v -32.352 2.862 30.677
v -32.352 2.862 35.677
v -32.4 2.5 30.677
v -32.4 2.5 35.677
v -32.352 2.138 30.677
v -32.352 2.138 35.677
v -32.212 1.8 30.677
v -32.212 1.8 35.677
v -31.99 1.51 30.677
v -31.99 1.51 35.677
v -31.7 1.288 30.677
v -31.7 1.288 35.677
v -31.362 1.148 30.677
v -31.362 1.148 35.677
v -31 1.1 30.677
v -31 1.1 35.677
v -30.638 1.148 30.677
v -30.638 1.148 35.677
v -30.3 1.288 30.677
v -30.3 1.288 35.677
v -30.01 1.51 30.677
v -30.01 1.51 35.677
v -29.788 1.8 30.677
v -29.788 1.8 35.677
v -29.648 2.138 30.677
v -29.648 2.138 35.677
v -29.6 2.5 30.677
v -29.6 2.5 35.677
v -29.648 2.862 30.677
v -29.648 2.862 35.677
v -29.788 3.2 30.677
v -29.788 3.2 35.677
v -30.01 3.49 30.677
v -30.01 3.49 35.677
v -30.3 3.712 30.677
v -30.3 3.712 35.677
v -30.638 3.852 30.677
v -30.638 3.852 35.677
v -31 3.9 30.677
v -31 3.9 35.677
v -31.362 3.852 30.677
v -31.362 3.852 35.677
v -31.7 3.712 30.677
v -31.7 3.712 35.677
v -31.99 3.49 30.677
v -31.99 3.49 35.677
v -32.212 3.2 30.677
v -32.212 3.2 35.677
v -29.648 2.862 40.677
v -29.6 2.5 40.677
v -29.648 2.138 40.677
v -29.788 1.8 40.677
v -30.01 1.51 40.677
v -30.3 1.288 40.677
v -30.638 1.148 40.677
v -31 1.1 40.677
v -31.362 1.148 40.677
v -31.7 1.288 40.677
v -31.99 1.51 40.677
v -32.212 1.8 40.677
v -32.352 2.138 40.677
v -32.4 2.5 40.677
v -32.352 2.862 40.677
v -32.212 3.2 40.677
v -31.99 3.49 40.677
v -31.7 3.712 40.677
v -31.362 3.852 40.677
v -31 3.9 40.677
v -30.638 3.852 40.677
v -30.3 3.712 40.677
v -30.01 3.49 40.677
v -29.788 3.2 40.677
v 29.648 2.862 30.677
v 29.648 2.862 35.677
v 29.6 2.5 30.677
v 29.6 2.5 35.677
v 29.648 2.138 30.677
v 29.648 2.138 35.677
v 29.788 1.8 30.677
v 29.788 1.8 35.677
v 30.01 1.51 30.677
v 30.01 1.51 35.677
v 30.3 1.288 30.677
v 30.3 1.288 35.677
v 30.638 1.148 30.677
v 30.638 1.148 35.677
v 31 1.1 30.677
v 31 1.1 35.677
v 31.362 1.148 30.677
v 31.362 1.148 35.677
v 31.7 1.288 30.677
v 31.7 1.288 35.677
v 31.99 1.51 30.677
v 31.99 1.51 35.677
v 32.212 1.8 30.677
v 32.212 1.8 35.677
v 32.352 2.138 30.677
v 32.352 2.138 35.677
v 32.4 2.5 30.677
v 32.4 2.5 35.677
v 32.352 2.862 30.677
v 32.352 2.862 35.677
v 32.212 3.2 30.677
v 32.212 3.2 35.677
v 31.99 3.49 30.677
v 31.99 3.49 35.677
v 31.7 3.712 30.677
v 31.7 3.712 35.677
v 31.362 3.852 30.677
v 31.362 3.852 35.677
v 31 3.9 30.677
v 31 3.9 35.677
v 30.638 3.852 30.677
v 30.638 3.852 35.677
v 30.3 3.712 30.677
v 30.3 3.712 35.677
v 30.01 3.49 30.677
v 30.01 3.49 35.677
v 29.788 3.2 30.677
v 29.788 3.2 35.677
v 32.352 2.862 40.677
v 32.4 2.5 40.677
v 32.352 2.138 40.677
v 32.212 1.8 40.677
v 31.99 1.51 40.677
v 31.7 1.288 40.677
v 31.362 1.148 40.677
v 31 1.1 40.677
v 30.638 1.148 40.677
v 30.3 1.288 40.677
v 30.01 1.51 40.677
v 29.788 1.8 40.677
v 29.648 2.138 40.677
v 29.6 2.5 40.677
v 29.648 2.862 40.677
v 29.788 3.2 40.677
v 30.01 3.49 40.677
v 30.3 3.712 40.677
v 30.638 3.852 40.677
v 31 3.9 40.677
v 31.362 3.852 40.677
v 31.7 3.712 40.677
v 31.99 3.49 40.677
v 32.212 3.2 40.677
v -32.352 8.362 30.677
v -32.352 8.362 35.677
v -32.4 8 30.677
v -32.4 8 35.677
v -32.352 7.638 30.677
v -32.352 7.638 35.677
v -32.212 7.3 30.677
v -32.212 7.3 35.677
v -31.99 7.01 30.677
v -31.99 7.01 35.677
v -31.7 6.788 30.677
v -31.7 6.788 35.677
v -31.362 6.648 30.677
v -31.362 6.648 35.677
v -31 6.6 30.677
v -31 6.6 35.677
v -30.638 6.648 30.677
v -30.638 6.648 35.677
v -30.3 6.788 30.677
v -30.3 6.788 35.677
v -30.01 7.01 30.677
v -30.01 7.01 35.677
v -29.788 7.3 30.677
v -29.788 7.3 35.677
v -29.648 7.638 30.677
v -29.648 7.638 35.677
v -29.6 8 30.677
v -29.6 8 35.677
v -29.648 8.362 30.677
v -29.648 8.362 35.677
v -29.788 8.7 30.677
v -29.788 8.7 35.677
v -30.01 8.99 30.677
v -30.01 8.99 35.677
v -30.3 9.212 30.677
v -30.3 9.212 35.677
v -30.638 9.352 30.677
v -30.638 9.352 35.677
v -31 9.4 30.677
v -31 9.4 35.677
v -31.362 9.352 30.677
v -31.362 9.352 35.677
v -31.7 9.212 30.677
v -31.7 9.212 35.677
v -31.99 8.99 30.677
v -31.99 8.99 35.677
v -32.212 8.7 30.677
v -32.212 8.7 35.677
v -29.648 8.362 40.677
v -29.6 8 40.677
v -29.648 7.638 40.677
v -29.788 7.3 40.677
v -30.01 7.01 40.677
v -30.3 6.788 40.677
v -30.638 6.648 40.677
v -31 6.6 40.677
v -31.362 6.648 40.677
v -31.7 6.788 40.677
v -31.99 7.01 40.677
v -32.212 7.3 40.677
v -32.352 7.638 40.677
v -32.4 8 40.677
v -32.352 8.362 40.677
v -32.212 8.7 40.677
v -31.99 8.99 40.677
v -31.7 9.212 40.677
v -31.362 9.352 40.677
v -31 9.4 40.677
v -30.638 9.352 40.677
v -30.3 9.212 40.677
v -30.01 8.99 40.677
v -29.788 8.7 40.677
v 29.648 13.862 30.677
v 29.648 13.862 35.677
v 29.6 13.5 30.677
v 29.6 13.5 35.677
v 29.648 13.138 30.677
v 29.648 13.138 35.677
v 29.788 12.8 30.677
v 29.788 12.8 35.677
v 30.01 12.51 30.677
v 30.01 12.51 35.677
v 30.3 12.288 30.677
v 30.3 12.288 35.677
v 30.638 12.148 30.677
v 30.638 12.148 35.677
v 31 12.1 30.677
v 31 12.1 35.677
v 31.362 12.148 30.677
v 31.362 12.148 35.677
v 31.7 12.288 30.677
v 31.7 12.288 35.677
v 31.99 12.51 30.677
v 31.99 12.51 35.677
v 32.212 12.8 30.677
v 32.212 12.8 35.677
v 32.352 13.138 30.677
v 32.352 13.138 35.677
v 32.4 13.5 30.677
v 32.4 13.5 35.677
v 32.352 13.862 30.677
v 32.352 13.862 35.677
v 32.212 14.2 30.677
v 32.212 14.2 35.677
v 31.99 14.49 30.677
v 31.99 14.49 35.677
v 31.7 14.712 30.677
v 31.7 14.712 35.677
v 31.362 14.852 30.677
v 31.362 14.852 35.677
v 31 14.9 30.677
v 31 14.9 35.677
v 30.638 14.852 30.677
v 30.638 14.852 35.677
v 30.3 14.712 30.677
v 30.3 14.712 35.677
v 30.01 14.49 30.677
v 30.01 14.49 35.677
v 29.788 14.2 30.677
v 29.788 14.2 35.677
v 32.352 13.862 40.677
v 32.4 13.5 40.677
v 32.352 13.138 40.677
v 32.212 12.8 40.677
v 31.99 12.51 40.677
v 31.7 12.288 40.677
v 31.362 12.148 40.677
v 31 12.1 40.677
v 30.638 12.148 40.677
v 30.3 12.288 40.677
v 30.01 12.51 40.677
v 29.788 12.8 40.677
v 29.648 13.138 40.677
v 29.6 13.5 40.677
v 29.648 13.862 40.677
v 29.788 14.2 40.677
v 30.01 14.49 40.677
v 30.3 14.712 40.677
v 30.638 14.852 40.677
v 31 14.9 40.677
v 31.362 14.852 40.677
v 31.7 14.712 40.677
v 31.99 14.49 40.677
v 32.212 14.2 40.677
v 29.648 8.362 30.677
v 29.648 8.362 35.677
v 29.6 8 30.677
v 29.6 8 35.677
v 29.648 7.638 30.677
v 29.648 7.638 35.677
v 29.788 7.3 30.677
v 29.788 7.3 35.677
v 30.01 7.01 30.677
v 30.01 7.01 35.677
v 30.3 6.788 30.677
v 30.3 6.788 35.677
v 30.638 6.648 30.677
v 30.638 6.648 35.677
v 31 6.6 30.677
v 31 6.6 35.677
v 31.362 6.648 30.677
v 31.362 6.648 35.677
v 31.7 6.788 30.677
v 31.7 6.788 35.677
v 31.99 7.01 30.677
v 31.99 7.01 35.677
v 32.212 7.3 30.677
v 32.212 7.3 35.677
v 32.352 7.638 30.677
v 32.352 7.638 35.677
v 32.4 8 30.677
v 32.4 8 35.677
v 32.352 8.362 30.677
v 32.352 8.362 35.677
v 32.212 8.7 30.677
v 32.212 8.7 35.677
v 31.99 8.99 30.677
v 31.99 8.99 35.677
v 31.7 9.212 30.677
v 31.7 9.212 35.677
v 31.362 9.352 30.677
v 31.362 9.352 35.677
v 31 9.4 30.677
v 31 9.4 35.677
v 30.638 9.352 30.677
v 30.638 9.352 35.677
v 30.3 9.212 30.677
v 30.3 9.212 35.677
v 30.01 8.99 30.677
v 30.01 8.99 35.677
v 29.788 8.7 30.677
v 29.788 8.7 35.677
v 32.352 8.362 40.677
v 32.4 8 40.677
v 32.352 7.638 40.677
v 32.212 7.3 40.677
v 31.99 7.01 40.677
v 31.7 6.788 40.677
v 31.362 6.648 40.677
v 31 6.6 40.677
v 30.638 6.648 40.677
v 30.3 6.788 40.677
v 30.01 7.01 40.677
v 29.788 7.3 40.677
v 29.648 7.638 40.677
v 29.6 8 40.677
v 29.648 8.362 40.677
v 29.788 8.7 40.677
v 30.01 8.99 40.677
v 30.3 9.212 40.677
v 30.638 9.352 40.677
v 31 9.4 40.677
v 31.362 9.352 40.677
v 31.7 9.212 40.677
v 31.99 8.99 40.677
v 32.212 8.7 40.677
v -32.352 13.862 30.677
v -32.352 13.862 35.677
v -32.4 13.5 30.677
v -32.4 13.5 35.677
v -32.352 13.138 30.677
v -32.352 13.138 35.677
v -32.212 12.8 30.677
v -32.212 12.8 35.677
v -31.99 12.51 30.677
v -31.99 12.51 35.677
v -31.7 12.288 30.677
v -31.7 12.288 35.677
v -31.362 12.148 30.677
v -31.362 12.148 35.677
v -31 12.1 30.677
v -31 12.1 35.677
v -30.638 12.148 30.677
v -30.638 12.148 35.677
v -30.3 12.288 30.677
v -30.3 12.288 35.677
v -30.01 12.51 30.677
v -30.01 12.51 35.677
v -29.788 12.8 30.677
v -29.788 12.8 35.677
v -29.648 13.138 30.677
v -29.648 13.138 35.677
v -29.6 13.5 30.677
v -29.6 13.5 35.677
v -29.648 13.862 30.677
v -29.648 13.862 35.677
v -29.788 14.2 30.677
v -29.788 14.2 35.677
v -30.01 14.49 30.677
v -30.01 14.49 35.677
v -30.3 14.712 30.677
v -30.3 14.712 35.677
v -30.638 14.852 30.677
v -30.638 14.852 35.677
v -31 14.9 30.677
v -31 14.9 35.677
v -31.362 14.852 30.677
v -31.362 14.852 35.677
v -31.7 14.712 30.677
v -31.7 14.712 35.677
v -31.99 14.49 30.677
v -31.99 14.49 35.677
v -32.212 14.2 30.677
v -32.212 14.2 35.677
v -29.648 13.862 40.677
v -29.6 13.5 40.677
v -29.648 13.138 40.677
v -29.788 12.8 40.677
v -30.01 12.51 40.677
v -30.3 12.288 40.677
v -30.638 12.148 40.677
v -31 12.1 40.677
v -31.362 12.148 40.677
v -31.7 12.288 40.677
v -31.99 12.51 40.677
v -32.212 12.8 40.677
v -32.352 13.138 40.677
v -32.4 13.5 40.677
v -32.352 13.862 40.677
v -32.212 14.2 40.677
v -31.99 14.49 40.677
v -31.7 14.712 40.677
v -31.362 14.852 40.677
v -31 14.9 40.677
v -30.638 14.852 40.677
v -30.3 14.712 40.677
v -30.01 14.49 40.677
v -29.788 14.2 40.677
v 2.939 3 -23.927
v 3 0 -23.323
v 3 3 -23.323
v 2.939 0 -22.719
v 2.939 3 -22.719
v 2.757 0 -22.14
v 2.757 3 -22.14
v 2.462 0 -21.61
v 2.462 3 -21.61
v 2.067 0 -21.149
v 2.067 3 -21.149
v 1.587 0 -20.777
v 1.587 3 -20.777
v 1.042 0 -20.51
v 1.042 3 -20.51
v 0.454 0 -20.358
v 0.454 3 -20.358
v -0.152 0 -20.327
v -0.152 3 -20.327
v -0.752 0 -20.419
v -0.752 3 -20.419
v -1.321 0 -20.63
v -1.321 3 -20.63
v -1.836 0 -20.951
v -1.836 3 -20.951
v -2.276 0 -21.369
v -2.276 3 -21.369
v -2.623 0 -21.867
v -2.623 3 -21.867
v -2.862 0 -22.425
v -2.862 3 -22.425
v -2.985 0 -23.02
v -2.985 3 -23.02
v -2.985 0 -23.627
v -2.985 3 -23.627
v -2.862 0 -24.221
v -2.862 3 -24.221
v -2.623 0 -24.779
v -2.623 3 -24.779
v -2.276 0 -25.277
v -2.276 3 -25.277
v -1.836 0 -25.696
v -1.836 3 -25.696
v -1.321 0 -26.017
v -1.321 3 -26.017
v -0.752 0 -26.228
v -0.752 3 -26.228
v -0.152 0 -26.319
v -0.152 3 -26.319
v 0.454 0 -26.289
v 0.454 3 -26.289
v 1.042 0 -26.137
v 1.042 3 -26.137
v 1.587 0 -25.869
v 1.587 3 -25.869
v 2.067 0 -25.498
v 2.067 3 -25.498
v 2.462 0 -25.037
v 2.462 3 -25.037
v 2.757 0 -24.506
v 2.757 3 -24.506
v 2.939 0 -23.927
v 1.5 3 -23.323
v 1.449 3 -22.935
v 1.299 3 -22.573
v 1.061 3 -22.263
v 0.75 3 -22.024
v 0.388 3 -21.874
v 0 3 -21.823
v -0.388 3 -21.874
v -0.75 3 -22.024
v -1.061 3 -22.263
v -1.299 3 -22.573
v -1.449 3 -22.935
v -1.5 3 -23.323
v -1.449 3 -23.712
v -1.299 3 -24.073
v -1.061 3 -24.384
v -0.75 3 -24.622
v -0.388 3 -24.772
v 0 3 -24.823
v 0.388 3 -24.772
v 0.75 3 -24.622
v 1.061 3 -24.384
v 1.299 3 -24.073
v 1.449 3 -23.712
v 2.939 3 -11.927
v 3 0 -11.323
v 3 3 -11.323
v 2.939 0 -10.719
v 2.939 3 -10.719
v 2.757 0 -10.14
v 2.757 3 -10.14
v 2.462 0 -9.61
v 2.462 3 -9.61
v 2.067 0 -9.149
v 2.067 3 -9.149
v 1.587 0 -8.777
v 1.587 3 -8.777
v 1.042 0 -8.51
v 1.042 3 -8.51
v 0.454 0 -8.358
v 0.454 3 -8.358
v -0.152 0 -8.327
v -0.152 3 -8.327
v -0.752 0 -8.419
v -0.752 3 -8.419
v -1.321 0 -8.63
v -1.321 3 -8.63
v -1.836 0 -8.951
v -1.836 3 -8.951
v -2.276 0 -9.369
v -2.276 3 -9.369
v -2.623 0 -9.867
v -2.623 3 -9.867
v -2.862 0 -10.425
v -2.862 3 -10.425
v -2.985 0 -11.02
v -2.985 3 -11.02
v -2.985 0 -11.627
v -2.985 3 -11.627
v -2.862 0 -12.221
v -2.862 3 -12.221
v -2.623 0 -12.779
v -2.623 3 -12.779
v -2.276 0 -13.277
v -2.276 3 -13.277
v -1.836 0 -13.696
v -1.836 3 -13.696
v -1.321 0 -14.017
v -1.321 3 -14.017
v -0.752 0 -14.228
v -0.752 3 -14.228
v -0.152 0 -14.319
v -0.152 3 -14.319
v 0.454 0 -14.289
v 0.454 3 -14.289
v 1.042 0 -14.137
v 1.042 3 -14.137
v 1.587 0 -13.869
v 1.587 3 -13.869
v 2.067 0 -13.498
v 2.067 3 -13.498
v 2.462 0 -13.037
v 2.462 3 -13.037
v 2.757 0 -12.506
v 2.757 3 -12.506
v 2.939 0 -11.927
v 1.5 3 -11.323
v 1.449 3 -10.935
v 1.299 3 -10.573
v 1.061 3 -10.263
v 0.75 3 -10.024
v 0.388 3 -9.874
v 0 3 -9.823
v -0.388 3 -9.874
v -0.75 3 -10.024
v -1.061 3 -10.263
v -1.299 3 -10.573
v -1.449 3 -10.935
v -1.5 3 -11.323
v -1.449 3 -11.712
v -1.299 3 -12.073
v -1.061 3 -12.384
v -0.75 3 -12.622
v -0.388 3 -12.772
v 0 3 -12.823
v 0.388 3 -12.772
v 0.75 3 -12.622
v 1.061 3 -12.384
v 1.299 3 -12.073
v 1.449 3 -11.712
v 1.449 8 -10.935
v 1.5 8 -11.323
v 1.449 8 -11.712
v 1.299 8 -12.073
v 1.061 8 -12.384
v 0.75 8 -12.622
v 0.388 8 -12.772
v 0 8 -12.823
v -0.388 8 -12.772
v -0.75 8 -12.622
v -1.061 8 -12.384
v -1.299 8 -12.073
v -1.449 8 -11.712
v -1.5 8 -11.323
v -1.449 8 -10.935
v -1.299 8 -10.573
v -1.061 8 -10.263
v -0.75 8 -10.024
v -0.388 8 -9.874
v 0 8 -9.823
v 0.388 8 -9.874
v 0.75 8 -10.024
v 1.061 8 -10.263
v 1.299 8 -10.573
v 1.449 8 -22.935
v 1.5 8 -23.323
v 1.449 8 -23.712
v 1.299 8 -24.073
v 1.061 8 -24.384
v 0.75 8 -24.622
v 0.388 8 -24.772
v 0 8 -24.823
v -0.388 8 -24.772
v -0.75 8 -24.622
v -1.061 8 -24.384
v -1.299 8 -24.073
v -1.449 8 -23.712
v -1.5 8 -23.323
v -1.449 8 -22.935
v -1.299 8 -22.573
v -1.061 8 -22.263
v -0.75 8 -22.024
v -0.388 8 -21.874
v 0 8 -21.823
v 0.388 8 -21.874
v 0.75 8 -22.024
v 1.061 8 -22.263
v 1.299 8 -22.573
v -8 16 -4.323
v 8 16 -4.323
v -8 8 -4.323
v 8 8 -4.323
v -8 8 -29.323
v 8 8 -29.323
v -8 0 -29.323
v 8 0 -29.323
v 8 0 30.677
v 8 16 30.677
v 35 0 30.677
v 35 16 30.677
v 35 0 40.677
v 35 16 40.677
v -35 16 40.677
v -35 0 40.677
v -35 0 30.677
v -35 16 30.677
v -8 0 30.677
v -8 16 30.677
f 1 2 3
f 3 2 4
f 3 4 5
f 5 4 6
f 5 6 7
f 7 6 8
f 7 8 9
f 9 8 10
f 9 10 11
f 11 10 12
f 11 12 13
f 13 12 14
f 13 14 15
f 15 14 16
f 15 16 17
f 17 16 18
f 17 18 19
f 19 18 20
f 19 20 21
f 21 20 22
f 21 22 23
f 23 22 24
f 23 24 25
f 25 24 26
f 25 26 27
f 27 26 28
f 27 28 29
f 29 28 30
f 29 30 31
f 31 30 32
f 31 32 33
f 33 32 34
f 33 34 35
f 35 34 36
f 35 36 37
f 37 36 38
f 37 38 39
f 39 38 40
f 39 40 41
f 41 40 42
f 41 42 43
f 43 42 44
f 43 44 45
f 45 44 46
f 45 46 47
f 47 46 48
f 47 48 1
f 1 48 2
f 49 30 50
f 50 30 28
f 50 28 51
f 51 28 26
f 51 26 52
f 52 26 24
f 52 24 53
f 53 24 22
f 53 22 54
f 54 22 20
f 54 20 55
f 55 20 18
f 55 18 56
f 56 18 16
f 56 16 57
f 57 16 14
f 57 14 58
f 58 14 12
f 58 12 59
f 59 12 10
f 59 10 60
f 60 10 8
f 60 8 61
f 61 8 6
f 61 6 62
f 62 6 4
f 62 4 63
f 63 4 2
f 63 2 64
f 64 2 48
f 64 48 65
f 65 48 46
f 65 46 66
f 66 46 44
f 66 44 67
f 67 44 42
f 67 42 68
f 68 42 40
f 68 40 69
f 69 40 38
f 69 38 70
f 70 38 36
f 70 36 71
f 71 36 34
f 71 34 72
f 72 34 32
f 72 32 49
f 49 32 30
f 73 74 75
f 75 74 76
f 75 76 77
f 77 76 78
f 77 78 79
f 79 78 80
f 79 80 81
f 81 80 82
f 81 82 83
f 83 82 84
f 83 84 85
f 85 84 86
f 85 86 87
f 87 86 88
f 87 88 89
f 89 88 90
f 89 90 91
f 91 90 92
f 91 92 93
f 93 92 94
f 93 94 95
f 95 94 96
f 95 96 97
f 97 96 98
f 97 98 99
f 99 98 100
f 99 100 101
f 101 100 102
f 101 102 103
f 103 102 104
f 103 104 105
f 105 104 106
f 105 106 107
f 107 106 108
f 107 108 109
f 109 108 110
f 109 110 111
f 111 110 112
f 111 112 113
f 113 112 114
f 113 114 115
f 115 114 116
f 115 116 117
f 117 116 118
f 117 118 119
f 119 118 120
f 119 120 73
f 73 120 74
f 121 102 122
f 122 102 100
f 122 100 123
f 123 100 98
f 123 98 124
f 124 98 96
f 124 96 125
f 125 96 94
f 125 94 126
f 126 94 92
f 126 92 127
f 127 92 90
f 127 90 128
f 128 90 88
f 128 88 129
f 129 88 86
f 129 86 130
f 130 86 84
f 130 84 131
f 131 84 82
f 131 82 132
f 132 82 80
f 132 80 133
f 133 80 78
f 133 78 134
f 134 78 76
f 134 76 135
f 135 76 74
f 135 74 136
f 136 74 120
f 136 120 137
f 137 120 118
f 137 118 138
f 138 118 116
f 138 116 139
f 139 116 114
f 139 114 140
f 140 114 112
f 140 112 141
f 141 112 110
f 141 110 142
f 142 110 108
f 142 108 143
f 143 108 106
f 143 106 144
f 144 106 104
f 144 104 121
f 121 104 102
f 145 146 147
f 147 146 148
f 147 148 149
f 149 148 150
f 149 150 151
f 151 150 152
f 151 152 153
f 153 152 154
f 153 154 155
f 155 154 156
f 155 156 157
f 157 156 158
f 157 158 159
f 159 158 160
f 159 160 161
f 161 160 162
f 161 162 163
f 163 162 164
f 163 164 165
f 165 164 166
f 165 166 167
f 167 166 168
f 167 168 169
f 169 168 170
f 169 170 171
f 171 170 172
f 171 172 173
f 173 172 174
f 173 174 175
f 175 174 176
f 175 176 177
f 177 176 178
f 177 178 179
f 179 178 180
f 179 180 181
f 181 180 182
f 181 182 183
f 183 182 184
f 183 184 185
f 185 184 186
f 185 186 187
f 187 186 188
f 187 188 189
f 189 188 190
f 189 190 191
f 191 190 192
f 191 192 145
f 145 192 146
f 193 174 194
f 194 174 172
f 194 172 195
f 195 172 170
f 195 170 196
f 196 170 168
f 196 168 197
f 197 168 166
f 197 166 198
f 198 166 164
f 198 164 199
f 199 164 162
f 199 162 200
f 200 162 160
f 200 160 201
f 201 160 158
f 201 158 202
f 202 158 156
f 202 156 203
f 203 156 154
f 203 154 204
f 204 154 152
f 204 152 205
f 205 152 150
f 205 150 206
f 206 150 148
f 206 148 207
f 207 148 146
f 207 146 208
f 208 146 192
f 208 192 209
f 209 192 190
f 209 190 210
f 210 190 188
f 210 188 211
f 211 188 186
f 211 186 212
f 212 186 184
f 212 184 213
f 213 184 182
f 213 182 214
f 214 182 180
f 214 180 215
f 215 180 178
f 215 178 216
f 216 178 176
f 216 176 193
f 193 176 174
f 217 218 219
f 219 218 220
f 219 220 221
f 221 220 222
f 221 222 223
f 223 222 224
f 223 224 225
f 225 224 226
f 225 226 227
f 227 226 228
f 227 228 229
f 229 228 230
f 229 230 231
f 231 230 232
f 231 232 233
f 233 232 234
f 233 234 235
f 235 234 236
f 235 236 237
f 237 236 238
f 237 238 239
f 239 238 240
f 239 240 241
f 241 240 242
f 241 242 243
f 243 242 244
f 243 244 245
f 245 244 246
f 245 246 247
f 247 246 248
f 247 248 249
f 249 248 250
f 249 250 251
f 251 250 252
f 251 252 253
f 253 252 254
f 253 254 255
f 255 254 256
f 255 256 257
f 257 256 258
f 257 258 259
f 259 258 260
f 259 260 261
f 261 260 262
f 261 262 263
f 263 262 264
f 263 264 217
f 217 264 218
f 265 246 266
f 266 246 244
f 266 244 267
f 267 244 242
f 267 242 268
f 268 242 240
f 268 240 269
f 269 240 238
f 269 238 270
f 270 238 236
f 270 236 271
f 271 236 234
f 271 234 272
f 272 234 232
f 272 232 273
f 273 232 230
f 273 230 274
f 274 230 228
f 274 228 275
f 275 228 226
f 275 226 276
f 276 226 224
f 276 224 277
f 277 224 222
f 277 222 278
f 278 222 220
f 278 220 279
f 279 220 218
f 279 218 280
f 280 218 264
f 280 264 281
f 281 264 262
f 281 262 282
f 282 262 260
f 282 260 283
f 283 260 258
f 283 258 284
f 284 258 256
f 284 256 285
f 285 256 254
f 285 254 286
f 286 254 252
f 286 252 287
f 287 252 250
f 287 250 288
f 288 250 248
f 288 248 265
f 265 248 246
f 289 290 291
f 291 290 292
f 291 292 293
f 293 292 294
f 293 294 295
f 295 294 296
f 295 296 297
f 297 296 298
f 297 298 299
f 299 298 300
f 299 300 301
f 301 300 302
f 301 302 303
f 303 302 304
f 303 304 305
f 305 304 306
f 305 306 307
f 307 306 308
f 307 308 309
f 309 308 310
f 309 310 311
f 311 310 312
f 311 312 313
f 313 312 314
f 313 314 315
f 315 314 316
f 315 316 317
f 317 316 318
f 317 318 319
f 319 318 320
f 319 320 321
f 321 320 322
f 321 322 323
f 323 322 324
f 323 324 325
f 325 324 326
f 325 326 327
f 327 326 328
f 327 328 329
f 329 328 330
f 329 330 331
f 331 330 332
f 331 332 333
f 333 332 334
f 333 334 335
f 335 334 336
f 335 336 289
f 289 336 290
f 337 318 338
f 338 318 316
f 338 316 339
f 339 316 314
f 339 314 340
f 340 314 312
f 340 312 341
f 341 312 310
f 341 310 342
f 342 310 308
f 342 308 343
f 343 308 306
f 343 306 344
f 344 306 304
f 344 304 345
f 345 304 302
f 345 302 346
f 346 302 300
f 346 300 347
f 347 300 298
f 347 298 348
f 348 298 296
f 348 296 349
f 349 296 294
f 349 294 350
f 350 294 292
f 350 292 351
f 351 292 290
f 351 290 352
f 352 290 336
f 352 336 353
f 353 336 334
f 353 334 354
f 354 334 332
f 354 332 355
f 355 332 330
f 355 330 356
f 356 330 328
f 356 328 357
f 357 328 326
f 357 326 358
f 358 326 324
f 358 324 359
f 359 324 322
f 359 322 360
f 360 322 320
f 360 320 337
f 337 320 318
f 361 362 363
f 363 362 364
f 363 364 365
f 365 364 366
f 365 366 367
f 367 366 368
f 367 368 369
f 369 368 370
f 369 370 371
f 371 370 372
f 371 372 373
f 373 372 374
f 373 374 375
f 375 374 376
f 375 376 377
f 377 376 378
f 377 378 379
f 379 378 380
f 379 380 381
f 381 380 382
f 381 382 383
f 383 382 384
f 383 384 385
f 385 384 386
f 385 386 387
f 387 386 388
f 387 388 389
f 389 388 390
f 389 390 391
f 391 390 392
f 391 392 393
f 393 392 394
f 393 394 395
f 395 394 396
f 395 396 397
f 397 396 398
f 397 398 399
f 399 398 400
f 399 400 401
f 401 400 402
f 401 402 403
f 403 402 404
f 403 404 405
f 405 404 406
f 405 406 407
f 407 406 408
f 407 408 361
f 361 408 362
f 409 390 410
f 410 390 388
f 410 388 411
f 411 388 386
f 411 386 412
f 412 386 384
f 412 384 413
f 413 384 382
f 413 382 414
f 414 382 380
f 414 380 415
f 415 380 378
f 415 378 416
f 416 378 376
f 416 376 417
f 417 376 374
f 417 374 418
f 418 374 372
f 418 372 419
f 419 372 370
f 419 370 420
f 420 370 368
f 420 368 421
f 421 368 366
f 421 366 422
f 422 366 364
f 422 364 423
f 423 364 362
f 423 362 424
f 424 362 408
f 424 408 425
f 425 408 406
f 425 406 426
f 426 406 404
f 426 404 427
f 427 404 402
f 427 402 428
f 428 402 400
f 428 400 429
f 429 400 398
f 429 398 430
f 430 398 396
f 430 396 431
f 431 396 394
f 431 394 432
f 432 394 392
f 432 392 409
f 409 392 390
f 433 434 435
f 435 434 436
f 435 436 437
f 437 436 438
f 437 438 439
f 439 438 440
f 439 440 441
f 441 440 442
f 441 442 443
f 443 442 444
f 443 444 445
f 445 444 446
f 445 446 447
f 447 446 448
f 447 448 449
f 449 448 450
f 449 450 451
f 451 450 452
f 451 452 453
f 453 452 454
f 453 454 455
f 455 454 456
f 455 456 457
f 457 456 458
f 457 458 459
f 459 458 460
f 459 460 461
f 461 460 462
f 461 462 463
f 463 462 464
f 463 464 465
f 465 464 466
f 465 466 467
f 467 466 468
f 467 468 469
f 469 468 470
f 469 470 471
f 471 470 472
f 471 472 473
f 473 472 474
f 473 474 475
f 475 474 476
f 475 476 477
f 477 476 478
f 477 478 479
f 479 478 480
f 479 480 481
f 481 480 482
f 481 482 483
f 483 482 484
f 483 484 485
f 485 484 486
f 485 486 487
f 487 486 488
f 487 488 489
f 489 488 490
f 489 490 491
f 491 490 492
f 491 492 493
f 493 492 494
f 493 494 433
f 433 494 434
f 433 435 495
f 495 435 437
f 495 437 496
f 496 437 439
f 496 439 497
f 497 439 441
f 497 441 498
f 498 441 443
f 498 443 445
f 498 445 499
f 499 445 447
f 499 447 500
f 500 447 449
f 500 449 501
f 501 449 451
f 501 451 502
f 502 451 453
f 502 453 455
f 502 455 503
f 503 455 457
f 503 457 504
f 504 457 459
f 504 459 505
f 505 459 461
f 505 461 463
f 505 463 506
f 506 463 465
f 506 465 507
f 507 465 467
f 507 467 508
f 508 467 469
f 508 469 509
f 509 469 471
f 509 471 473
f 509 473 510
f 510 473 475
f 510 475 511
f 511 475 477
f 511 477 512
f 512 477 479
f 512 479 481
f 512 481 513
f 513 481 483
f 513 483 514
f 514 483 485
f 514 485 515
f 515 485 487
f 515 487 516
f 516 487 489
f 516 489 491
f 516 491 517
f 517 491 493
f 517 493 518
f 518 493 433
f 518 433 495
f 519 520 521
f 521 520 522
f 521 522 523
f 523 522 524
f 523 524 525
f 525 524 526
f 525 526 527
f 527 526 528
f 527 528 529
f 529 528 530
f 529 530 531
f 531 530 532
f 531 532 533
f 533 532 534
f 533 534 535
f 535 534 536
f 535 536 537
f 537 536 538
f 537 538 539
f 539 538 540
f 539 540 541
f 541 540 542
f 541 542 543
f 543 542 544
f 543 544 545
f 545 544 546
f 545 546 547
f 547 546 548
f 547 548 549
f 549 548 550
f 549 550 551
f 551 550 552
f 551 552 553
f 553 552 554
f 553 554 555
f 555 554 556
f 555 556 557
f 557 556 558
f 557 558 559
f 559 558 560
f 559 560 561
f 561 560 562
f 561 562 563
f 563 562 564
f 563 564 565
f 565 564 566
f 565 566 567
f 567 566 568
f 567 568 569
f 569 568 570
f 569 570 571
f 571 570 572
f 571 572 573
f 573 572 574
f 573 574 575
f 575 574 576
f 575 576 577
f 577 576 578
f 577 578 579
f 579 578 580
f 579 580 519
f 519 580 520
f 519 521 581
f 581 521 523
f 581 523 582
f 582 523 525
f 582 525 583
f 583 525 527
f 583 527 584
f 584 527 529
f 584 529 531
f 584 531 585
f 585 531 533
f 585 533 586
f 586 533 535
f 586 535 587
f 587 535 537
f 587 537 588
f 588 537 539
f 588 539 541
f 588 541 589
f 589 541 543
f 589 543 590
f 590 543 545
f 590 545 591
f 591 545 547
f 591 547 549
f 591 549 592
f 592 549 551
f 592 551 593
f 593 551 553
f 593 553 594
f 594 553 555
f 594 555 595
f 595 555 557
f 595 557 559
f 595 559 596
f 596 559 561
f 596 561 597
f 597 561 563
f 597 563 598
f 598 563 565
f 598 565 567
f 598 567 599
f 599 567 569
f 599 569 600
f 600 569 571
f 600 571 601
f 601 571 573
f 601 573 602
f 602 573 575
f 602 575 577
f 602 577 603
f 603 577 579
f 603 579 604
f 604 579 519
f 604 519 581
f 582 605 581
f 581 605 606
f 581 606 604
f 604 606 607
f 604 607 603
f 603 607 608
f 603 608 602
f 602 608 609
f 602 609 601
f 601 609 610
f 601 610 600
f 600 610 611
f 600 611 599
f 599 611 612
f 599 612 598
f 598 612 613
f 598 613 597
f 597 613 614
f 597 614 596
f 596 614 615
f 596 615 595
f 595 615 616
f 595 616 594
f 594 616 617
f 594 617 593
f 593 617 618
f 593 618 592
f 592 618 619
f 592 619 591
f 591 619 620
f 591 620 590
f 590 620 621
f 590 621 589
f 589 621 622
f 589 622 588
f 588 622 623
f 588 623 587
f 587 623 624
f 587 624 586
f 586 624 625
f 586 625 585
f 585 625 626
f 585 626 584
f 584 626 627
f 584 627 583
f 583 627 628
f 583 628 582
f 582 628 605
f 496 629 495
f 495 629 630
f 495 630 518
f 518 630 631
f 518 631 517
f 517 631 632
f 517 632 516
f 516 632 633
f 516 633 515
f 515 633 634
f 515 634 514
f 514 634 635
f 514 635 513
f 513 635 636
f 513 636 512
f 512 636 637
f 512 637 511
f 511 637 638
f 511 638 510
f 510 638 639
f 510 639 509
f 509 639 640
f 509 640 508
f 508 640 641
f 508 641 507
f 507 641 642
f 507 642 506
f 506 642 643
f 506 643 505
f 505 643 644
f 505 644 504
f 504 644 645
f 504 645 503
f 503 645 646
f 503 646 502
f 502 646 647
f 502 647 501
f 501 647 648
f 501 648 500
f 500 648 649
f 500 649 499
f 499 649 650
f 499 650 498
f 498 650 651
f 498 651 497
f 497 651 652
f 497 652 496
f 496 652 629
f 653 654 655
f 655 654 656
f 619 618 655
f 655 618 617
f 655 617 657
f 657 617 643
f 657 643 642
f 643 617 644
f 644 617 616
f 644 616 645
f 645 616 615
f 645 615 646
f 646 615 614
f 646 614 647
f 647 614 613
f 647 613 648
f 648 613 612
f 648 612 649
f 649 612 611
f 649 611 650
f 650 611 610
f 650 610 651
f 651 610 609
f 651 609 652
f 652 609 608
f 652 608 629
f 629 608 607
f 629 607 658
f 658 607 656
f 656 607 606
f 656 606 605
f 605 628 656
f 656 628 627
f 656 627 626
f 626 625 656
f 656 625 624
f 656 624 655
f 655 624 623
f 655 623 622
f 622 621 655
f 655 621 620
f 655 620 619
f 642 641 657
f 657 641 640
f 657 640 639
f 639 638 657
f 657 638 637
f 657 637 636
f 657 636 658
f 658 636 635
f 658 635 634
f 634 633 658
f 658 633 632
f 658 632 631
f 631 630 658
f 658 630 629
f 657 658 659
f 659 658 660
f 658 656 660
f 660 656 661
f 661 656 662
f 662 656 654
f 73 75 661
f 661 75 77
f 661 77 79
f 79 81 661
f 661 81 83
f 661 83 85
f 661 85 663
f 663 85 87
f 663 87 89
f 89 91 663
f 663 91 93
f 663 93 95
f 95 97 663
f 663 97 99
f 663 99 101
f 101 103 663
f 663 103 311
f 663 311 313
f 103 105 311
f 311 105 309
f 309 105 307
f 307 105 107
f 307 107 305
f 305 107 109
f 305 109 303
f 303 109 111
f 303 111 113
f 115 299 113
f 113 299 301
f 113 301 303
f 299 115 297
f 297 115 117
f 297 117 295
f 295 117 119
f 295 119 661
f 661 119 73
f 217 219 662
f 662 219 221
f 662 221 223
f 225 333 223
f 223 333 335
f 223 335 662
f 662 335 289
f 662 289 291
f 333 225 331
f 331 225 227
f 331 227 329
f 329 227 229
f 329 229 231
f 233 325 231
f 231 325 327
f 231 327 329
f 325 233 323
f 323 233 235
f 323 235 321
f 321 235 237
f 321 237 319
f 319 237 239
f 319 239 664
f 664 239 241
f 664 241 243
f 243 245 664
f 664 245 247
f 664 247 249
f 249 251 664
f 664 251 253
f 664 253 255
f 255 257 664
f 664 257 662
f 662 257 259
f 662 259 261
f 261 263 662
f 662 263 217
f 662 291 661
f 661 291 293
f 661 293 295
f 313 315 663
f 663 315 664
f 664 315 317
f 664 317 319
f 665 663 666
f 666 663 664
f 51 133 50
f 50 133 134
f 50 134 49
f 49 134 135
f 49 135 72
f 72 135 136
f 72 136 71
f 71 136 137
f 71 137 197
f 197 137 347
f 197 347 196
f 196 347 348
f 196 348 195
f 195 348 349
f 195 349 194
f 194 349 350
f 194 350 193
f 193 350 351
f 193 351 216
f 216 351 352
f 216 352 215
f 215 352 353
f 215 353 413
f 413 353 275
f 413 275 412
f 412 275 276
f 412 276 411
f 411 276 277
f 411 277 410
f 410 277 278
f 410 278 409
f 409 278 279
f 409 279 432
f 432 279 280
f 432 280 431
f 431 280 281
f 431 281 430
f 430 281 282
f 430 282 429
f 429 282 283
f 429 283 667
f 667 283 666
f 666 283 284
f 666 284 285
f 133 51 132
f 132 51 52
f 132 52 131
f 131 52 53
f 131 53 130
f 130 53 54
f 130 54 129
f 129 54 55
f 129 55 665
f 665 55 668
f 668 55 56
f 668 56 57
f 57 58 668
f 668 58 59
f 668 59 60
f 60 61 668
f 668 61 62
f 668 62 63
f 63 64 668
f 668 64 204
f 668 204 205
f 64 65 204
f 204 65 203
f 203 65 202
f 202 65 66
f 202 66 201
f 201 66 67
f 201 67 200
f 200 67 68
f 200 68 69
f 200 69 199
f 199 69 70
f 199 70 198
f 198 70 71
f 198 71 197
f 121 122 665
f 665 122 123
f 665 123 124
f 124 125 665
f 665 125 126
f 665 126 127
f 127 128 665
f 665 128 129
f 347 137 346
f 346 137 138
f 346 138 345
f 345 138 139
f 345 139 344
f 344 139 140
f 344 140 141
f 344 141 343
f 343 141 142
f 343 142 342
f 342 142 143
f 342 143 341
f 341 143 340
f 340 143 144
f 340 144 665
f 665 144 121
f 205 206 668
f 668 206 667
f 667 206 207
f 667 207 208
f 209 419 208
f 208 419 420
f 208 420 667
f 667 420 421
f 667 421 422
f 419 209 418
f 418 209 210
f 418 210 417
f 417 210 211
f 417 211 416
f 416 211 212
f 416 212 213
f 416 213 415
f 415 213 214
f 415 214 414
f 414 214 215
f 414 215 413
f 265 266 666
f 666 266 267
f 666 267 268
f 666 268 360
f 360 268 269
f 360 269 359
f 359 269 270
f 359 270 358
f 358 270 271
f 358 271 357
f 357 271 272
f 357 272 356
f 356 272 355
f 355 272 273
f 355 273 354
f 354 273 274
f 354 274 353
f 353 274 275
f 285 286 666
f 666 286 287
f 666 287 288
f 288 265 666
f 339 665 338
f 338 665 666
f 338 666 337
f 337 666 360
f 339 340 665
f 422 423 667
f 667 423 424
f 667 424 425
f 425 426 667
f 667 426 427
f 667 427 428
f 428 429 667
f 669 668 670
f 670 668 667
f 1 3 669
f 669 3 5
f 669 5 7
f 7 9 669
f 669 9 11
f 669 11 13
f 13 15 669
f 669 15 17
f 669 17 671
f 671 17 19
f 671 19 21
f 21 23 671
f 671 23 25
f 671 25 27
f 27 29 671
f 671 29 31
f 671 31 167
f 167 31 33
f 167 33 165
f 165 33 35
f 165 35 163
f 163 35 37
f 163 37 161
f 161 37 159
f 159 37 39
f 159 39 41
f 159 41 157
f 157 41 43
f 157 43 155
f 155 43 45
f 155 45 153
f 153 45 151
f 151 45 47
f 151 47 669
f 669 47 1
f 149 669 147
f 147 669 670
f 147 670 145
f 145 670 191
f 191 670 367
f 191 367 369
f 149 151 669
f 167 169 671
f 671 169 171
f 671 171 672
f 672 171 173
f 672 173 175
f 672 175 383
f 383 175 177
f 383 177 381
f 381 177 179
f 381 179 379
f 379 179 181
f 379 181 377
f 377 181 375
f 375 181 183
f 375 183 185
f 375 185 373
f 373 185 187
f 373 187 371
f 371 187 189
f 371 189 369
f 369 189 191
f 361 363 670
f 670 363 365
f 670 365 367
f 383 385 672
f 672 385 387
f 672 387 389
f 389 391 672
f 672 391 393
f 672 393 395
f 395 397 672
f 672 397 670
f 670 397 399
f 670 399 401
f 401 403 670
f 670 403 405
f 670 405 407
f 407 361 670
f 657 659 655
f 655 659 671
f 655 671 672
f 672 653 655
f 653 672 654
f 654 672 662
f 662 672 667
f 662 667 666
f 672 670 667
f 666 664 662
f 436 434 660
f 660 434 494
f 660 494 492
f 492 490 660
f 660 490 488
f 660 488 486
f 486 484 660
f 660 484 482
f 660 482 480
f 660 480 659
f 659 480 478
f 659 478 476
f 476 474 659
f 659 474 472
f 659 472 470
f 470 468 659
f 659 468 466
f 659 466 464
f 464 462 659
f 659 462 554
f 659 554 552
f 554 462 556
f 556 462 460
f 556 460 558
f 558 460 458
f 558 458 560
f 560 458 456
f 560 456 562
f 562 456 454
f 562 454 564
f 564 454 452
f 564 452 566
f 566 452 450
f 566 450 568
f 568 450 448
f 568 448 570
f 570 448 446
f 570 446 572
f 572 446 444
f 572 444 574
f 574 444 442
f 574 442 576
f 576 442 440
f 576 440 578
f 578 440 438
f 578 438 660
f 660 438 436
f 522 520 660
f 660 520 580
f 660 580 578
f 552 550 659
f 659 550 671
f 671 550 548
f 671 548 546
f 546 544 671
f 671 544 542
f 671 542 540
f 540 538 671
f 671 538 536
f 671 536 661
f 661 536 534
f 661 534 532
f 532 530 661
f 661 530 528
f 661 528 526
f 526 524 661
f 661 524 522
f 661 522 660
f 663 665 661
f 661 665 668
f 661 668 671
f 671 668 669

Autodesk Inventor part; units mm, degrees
ref_plane "YZ Plane" through (0, 0, 0) normal (1, 0, 0) x (0, 1, 0)
ref_plane "XZ Plane" through (0, 0, 0) normal (0, 1, 0) x (-1, 0, 0)
ref_plane "XY Plane" through (0, 0, 0) normal (0, 0, 1) x (1, 0, 0)
sketch "Sketch1" plane through (0, 0, 0) normal (0, 1, 0) x (-1, 0, 0)
  line L0 (0, -29.3233) -> (8, -29.3233)
  line L1 (8, -29.3233) -> (8, 30.6767)
  line L2 (0, 0) -> (0, -29.3233) construction
  line L3 (0, -29.3233) -> (-8, -29.3233)
  line L4 (-8, -29.3233) -> (-8, 30.6767)
  line L5 (8, 30.6767) -> (35, 30.6767)
  line L6 (35, 30.6767) -> (35, 40.6767)
  line L7 (35, 40.6767) -> (2.1646, 40.6767)
  line L8 (2.1646, 40.6767) -> (0, 40.6767)
  line L9 (-8, 30.6767) -> (-35, 30.6767)
  line L10 (-35, 30.6767) -> (-35, 40.6767)
  line L11 (-35, 40.6767) -> (-2.1646, 40.6767)
  line L12 (-2.1646, 40.6767) -> (0, 40.6767)
  point P0 (4, -29.3233)
  point P1 (-4, -29.3233)
  dimension "d0" = 16
  dimension "d17" = 10
  dimension "d32" = 70
  dimension "d35" = 70
extrude "Extrusion1" add sketch "Sketch1" along normal blind 16
sketch "Sketch2" plane through (0, 16, 0) normal (0, 1, 0) x (1, 0, 0)
  line L0 (8, 29.3233) -> (-8, 29.3233) projected
  line L1 (-8, 29.3233) -> (-8, -30.6767) projected
  line L2 (8, -30.6767) -> (8, 29.3233) projected
  line L3 (8, -30.6767) -> (8, 29.3233) projected
  line L4 (-8, 29.3233) -> (8, 29.3233)
  line L5 (8, 29.3233) -> (8, 4.3233)
  line L6 (8, 4.3233) -> (-8, 4.3233)
  line L7 (-8, 4.3233) -> (-8, 29.3233)
  line L8 (-8, -30.6767) -> (-35, -30.6767) projected
  line L9 (-35, -30.6767) -> (-35, -40.6767) projected
  line L10 (-35, -40.6767) -> (35, -40.6767) projected
  line L11 (35, -40.6767) -> (35, -30.6767) projected
  line L12 (35, -30.6767) -> (8, -30.6767) projected
  point P0 (0, 0)
  point P1 (-8, 4.3233)
  dimension "d6" = 25
extrude "Extrusion2" cut sketch "Sketch2" against normal blind 8 contours L2 L6 L1 L0
sketch "Sketch3" plane through (0, 0, 0) normal (0, -1, 0) x (1, 0, 0)
  line L0 (8, -29.3233) -> (-8, -29.3233) projected
  line L1 (8, 30.6767) -> (8, -29.3233) projected
  line L2 (-8, -29.3233) -> (-8, 30.6767) projected
  circle A0 centre (0, -23.3233) radius 1.5
  circle A1 centre (0, -11.3233) radius 1.5
  line L3 (35, 30.6767) -> (8, 30.6767) projected
  line L4 (35, 40.6767) -> (35, 30.6767) projected
  line L5 (-35, 40.6767) -> (35, 40.6767) projected
  line L6 (-35, 30.6767) -> (-35, 40.6767) projected
  line L7 (-8, 30.6767) -> (-35, 30.6767) projected
  point P0 (0, 0)
  dimension "d9" = 3
  dimension "d10" = 6
  dimension "d11" = 12
extrude "Extrusion3" cut sketch "Sketch3" against normal through all contours A0 | A1
sketch "Sketch4" plane through (0, 0, 0) normal (0, -1, 0) x (1, 0, 0)
  circle A0 centre (0, -11.3233) radius 1.5 projected
  circle A1 centre (0, -23.3233) radius 1.5 projected
  line L0 (8, -29.3233) -> (-8, -29.3233) projected
  line L1 (8, 30.6767) -> (8, -29.3233) projected
  line L2 (-8, -29.3233) -> (-8, 30.6767) projected
  circle A2 centre (0, -23.3233) radius 3
  circle A3 centre (0, -11.3233) radius 1.5 projected
  circle A4 centre (0, -11.3233) radius 3
  line L3 (35, 30.6767) -> (8, 30.6767) projected
  line L4 (35, 40.6767) -> (35, 30.6767) projected
  line L5 (-35, 40.6767) -> (35, 40.6767) projected
  line L6 (-35, 30.6767) -> (-35, 40.6767) projected
  line L7 (-8, 30.6767) -> (-35, 30.6767) projected
  point P0 (0, 0)
  dimension "d14" = 6
extrude "Extrusion4" cut sketch "Sketch4" against normal blind 3 contours A2 | A4
sketch "Sketch5" plane through (0.8354, 0, 40.6767) normal (0, 0, 1) x (1, 0, 0)
  line L0 (-35.8354, 0) -> (34.1646, 0) projected
  line L1 (-35.8354, 16) -> (34.1646, 16) projected
  line L2 (-35.8354, 0) -> (-35.8354, 16) projected
  line L3 (-35.8354, 0) -> (-35.8354, 16) construction
  line L4 (-35.8354, 8) -> (34.1646, 8) construction
  circle A0 centre (-31.8354, 13.5) radius 1.4
  circle A1 centre (-31.8354, 8) radius 1.4
  circle A2 centre (-31.8354, 2.5) radius 1.4
  line L5 (34.1646, 0) -> (34.1646, 16) projected
  line L6 (-35.8354, 16) -> (34.1646, 16) construction
  line L7 (-0.8354, 16) -> (-0.8354, 0) construction
  line L8 (-35.8354, 0) -> (34.1646, 0) projected
  circle A3 centre (30.1646, 13.5) radius 1.4
  circle A4 centre (30.1646, 8) radius 1.4
  circle A5 centre (30.1646, 2.5) radius 1.4
  dimension "d19" = 2.8
  dimension "d20" = 11
  dimension "d21" = 4
extrude "Extrusion8" cut sketch "Sketch5" against normal through all contours A0 | A1 | A2 | A3 | A4 | A5
properties part number "B1_head_T"
